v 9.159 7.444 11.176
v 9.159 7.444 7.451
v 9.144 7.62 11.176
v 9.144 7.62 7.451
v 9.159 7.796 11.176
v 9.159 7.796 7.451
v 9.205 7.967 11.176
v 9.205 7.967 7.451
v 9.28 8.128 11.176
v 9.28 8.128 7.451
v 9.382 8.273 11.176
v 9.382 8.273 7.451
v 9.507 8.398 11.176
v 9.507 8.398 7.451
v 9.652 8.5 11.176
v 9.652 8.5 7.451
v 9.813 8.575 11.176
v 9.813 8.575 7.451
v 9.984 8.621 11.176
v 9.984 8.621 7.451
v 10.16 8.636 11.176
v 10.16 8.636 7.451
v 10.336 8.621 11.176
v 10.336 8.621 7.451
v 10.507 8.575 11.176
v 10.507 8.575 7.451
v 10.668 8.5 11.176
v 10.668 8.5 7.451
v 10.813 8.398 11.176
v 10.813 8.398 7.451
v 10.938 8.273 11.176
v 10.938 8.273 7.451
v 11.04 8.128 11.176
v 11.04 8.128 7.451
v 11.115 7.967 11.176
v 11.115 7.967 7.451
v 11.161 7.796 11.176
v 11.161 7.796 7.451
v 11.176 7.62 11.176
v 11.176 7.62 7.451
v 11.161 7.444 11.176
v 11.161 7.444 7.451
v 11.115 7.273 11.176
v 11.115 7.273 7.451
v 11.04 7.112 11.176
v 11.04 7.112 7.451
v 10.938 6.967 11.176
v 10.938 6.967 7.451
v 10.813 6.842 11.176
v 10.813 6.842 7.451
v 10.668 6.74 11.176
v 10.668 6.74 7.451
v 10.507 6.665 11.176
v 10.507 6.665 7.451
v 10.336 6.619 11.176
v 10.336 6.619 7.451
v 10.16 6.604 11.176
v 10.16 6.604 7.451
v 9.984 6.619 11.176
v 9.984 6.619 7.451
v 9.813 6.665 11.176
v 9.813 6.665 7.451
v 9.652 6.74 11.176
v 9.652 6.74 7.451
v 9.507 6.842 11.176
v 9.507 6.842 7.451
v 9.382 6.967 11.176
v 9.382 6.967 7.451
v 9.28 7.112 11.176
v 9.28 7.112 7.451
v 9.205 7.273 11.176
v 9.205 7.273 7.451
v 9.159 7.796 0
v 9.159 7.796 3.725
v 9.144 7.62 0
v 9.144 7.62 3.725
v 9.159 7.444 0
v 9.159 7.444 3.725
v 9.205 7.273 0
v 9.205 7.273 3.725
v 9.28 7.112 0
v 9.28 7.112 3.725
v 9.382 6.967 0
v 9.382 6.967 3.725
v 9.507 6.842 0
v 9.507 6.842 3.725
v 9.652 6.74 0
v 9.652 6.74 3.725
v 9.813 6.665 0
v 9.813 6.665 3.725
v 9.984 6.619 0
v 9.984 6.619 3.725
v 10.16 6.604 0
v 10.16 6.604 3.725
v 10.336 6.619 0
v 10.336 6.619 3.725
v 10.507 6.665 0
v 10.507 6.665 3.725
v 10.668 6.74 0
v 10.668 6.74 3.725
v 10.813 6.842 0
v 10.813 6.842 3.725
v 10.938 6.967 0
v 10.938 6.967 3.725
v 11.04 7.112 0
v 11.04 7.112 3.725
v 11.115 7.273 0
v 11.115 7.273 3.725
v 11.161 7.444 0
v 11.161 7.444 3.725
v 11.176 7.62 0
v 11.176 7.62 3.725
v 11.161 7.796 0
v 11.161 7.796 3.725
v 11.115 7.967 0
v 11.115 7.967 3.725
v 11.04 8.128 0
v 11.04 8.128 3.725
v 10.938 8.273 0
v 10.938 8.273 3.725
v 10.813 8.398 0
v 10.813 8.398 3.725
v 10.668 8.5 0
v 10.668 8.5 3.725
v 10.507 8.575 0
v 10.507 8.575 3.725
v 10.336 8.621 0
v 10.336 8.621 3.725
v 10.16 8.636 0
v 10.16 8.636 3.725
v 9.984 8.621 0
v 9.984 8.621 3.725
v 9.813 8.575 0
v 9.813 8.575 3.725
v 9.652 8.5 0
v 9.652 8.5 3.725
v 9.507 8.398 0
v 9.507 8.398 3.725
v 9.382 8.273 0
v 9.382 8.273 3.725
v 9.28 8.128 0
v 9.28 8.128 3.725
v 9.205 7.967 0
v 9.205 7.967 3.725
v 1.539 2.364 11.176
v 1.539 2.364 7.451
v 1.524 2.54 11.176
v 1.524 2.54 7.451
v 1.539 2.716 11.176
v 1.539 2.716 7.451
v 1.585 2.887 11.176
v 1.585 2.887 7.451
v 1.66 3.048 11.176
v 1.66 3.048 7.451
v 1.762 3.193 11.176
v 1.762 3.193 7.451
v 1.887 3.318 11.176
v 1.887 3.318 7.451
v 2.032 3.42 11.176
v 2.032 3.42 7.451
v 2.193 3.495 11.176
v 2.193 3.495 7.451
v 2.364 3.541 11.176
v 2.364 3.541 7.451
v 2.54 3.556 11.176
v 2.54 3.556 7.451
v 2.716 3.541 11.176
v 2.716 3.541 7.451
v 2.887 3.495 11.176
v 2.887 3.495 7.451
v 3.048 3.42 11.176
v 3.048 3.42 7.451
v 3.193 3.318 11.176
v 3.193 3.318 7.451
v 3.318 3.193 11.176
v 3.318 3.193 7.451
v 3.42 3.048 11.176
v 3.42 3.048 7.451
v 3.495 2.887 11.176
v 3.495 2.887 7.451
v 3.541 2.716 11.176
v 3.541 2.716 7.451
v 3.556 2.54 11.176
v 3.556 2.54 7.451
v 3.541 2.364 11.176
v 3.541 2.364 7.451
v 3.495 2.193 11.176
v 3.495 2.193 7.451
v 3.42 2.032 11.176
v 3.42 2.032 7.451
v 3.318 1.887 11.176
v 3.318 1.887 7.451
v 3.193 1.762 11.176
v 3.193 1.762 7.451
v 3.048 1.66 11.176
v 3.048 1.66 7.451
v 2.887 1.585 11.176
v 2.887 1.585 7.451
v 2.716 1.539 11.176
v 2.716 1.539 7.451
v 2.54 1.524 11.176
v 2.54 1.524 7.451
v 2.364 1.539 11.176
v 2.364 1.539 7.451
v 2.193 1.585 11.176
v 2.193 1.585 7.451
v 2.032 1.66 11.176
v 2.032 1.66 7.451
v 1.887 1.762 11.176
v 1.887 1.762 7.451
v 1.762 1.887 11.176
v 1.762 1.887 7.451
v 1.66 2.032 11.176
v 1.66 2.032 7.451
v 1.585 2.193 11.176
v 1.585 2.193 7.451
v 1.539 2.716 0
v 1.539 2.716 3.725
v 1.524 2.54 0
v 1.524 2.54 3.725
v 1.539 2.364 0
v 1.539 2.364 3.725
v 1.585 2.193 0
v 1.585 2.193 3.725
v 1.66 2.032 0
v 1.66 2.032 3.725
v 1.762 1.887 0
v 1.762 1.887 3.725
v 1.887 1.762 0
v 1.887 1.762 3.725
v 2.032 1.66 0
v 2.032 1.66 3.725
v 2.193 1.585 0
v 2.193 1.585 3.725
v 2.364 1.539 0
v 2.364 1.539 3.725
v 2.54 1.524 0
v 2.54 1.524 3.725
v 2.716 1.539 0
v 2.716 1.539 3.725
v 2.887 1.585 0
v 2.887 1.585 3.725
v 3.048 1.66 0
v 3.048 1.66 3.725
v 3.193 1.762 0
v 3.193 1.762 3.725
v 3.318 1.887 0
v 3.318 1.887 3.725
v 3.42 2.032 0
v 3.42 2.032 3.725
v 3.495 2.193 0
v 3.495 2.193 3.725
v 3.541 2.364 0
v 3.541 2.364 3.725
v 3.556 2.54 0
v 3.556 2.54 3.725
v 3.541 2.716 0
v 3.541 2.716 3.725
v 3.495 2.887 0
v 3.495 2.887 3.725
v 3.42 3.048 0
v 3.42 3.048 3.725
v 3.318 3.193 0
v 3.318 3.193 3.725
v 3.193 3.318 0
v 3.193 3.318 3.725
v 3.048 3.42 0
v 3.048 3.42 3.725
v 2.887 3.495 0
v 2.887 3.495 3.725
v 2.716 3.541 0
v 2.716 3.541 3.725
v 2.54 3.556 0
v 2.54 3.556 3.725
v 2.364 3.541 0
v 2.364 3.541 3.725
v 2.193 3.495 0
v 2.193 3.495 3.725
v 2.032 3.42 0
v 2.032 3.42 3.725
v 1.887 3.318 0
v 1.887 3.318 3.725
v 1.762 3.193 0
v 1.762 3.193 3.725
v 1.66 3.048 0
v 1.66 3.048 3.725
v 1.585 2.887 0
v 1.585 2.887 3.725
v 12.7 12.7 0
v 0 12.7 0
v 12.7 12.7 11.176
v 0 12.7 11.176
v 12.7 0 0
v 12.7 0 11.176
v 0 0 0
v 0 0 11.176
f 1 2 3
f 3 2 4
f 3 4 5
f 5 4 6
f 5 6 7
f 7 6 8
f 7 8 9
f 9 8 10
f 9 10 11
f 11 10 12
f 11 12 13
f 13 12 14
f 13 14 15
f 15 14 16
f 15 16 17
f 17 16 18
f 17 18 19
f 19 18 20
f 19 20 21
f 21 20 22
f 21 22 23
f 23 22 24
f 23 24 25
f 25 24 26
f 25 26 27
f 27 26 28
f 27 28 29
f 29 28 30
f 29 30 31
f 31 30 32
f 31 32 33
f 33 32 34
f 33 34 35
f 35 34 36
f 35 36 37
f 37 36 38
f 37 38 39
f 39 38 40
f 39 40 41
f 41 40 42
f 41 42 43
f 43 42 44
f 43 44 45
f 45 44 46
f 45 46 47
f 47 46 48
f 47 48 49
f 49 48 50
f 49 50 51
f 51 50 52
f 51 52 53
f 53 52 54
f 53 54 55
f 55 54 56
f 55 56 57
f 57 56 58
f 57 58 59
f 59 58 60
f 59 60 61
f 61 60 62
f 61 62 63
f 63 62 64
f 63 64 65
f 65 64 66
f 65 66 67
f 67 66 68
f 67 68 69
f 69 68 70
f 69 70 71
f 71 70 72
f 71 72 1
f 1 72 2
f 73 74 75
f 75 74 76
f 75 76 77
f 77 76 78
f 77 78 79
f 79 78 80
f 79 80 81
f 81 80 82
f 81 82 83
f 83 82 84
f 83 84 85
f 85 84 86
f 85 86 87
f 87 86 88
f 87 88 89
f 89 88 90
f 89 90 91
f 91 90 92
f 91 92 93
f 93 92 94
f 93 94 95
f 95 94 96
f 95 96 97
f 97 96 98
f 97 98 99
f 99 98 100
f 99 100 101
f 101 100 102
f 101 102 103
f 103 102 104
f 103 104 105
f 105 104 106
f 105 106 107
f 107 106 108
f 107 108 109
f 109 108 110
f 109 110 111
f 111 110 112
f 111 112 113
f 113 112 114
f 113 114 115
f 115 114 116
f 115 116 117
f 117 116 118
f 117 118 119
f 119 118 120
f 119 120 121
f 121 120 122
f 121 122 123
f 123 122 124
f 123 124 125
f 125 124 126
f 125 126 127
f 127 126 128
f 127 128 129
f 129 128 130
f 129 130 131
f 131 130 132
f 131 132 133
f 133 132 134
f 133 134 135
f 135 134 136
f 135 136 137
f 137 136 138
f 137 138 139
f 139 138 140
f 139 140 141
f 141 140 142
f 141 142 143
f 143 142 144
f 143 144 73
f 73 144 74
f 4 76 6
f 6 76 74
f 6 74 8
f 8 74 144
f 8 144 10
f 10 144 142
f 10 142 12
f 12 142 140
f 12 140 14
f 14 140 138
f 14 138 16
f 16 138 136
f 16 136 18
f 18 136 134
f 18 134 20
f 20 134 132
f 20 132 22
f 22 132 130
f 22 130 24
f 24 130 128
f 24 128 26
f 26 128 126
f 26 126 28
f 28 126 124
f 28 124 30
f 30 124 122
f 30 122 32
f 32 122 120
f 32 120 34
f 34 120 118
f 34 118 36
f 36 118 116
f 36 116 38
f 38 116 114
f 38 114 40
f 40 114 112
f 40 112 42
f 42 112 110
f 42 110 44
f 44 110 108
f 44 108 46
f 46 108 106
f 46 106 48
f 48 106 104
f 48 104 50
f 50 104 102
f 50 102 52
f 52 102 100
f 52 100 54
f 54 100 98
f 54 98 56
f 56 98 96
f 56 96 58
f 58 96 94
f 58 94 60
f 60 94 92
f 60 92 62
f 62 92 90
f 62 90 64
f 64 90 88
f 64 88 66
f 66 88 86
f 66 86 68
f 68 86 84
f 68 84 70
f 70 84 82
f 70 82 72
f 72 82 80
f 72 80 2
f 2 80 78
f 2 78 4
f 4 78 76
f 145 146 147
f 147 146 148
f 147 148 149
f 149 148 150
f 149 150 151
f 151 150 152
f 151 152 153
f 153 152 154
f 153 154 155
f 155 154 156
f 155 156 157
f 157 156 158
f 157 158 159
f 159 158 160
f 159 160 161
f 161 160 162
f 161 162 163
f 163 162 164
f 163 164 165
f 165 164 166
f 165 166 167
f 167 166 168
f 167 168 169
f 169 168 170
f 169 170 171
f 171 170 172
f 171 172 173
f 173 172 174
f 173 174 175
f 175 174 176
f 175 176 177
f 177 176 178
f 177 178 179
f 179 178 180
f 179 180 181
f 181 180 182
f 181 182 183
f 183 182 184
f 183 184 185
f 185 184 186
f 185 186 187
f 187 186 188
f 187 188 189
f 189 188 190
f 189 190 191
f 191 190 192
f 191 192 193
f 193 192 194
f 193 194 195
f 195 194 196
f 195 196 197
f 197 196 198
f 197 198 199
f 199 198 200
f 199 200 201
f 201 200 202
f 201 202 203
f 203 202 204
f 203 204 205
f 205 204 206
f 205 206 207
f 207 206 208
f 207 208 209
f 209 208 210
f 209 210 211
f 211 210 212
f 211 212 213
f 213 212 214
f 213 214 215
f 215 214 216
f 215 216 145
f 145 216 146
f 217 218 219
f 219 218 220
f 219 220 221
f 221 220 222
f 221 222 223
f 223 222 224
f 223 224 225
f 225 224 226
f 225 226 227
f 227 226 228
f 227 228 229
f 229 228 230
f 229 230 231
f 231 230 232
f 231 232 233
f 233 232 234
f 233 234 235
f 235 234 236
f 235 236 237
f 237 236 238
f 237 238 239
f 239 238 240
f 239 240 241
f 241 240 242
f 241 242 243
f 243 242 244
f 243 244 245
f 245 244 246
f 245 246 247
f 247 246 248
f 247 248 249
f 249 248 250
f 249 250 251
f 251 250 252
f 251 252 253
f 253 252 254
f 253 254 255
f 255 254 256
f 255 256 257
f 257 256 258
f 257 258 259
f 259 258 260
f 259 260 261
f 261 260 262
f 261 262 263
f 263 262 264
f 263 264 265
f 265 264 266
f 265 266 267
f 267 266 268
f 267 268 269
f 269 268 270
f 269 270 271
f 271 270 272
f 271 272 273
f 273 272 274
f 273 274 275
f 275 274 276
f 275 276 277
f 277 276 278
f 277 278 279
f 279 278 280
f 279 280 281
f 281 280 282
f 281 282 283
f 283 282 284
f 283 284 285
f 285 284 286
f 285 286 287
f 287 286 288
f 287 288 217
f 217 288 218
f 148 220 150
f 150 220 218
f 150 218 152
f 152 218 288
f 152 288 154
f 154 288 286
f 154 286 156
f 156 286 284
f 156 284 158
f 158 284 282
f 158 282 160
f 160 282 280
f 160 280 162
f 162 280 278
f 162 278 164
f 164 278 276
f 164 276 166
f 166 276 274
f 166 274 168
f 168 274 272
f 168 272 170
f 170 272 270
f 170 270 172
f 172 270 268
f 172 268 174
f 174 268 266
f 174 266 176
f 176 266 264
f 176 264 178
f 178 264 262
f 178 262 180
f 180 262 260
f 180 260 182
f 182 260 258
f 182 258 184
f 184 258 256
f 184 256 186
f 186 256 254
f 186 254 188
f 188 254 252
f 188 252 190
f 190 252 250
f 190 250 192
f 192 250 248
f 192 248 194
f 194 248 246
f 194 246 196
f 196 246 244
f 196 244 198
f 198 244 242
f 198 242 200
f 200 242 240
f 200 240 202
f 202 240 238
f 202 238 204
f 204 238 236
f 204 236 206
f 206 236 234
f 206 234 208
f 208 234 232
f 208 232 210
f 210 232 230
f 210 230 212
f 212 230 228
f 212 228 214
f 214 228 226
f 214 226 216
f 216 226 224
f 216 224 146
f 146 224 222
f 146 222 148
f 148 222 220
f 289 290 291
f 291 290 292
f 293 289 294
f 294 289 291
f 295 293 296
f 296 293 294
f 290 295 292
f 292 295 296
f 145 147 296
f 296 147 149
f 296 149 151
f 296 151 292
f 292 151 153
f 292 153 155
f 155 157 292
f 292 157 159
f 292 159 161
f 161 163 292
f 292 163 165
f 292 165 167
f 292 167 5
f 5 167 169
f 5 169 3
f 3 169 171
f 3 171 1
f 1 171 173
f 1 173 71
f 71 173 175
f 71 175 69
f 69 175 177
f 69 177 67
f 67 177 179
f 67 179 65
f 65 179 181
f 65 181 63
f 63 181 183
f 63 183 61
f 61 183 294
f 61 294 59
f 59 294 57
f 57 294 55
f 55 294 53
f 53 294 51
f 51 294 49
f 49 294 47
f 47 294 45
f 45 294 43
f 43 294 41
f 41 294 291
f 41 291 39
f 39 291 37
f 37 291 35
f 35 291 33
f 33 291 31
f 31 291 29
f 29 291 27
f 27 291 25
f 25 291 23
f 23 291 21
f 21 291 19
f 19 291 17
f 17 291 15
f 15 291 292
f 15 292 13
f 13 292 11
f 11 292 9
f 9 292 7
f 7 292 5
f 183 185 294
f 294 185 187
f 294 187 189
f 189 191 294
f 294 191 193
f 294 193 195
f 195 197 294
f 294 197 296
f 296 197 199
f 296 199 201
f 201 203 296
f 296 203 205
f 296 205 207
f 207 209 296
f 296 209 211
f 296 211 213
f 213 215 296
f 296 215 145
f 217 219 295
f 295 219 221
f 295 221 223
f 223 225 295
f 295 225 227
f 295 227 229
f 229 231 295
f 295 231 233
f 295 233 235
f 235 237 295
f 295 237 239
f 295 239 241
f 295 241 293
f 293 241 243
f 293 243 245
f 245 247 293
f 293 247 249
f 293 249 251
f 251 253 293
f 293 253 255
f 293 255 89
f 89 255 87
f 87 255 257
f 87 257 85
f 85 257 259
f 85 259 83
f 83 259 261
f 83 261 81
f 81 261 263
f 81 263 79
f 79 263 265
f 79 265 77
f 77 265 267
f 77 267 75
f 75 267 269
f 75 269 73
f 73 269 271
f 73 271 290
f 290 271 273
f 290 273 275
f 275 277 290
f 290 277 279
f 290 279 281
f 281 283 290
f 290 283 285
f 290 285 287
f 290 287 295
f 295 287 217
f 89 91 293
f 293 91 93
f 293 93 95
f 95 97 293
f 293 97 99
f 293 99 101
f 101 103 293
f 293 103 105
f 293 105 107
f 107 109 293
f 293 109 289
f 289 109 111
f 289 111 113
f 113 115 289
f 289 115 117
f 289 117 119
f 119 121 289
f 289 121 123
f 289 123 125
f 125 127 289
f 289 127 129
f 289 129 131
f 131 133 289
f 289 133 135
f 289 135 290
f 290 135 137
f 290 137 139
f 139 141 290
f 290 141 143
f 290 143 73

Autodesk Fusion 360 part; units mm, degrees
sketch "Sketch1" plane through (0, 0, 0) normal (0, 0, 1) x (1, 0, 0)
  line L0 (0, 0) -> (12.7, 0)
  line L1 (12.7, 0) -> (12.7, 12.7)
  line L2 (12.7, 12.7) -> (0, 12.7)
  line L3 (0, 12.7) -> (0, 0)
  circle A0 centre (2.54, 2.54) radius 1.016
  circle A1 centre (10.16, 7.62) radius 1.016
  dimension "d1" = 12.7
  dimension "d2" = 12.7
  dimension "d3" = 2.032
  dimension "d4" = 2.54
  dimension "d5" = 2.54
  dimension "d6" = 2.032
  dimension "d7" = 2.54
  dimension "d8" = 5.08
extrude "Extrude1" add sketch "Sketch1" along normal blind 11.176
